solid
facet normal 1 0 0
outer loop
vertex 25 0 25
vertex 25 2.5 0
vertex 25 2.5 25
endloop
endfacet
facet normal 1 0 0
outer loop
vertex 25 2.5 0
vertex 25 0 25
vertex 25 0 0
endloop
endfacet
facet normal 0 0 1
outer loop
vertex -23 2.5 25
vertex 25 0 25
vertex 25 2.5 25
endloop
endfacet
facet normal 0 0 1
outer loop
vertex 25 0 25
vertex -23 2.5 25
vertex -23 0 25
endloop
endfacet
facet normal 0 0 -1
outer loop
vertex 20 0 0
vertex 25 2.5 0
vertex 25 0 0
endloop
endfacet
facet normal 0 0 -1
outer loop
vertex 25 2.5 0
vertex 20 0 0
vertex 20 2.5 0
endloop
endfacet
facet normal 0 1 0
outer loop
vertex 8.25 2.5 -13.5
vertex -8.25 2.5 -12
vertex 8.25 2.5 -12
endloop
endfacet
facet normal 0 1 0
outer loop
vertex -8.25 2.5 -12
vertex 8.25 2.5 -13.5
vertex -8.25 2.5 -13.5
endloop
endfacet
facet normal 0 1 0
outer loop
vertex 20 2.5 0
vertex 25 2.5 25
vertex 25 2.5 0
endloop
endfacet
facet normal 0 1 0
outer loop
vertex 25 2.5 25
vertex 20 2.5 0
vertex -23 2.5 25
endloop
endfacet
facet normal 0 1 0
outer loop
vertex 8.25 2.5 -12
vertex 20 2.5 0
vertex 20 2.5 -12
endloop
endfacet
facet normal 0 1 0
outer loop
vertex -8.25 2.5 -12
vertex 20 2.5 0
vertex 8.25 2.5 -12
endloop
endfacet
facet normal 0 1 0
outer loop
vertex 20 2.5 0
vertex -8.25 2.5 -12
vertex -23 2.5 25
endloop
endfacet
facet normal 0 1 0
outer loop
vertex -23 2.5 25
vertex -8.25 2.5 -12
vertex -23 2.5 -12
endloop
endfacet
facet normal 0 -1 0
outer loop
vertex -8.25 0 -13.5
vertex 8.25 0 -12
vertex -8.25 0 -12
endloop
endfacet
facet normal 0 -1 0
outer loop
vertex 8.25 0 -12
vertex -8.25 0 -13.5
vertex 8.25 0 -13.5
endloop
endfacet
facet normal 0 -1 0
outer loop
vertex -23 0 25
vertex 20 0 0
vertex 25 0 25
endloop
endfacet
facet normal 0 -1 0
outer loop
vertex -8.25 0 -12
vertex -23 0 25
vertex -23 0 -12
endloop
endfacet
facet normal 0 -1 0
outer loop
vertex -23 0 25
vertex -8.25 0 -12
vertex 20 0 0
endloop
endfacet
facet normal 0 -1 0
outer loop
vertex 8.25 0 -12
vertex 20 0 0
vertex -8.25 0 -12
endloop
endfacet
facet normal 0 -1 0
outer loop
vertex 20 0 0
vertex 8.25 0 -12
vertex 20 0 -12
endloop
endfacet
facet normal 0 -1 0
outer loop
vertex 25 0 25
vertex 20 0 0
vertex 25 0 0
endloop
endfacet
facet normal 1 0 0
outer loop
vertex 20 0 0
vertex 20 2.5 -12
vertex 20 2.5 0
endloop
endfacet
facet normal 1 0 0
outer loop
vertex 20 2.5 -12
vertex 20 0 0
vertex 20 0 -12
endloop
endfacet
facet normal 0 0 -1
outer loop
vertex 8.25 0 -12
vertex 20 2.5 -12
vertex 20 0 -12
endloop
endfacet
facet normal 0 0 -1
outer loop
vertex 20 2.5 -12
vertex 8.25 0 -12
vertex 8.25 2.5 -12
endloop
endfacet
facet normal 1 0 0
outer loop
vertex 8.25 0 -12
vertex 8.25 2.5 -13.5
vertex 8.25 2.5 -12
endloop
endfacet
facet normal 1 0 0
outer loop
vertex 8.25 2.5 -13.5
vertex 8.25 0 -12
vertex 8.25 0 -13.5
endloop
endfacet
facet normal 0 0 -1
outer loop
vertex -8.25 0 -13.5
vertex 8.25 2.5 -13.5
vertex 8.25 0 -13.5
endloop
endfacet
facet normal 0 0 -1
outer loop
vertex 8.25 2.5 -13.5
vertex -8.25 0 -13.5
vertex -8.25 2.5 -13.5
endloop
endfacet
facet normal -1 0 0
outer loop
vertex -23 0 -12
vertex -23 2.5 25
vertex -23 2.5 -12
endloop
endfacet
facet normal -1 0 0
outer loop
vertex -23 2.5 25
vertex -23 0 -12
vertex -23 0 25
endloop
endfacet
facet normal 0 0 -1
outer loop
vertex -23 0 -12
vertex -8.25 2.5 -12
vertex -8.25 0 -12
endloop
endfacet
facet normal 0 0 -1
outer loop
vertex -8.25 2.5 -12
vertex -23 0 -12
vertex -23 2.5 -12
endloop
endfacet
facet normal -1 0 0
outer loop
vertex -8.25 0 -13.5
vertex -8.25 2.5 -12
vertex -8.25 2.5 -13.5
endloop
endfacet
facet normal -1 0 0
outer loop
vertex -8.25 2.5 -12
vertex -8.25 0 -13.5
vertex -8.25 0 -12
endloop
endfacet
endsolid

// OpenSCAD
thickness = 2.5;
topWidth = 25;
topDepth = 25;
platformEdgeWidth = 20;
platformWallWidth = 23;
platformToTrackDepth = 12;
trackKeyWidth = 8.25;
trackKeyDepth = 1.5;

module platformSurfaceSide() {
    cube([topWidth, thickness, topDepth]);
    translate([0, 0, -platformToTrackDepth]) cube([platformEdgeWidth, thickness, platformToTrackDepth]);
    translate([0, 0, -platformToTrackDepth - trackKeyDepth]) cube([trackKeyWidth, thickness, trackKeyDepth]);
}

module platformWallSide() {
    cube([platformWallWidth, thickness, topDepth]);
    translate([0, 0, -platformToTrackDepth]) cube([platformWallWidth, thickness, platformToTrackDepth]);
    translate([0, 0, -platformToTrackDepth - trackKeyDepth]) cube([trackKeyWidth, thickness, trackKeyDepth]);
}

platformSurfaceSide();
rotate([0, 0, 180]) translate([0, -thickness, 0]) platformWallSide();
